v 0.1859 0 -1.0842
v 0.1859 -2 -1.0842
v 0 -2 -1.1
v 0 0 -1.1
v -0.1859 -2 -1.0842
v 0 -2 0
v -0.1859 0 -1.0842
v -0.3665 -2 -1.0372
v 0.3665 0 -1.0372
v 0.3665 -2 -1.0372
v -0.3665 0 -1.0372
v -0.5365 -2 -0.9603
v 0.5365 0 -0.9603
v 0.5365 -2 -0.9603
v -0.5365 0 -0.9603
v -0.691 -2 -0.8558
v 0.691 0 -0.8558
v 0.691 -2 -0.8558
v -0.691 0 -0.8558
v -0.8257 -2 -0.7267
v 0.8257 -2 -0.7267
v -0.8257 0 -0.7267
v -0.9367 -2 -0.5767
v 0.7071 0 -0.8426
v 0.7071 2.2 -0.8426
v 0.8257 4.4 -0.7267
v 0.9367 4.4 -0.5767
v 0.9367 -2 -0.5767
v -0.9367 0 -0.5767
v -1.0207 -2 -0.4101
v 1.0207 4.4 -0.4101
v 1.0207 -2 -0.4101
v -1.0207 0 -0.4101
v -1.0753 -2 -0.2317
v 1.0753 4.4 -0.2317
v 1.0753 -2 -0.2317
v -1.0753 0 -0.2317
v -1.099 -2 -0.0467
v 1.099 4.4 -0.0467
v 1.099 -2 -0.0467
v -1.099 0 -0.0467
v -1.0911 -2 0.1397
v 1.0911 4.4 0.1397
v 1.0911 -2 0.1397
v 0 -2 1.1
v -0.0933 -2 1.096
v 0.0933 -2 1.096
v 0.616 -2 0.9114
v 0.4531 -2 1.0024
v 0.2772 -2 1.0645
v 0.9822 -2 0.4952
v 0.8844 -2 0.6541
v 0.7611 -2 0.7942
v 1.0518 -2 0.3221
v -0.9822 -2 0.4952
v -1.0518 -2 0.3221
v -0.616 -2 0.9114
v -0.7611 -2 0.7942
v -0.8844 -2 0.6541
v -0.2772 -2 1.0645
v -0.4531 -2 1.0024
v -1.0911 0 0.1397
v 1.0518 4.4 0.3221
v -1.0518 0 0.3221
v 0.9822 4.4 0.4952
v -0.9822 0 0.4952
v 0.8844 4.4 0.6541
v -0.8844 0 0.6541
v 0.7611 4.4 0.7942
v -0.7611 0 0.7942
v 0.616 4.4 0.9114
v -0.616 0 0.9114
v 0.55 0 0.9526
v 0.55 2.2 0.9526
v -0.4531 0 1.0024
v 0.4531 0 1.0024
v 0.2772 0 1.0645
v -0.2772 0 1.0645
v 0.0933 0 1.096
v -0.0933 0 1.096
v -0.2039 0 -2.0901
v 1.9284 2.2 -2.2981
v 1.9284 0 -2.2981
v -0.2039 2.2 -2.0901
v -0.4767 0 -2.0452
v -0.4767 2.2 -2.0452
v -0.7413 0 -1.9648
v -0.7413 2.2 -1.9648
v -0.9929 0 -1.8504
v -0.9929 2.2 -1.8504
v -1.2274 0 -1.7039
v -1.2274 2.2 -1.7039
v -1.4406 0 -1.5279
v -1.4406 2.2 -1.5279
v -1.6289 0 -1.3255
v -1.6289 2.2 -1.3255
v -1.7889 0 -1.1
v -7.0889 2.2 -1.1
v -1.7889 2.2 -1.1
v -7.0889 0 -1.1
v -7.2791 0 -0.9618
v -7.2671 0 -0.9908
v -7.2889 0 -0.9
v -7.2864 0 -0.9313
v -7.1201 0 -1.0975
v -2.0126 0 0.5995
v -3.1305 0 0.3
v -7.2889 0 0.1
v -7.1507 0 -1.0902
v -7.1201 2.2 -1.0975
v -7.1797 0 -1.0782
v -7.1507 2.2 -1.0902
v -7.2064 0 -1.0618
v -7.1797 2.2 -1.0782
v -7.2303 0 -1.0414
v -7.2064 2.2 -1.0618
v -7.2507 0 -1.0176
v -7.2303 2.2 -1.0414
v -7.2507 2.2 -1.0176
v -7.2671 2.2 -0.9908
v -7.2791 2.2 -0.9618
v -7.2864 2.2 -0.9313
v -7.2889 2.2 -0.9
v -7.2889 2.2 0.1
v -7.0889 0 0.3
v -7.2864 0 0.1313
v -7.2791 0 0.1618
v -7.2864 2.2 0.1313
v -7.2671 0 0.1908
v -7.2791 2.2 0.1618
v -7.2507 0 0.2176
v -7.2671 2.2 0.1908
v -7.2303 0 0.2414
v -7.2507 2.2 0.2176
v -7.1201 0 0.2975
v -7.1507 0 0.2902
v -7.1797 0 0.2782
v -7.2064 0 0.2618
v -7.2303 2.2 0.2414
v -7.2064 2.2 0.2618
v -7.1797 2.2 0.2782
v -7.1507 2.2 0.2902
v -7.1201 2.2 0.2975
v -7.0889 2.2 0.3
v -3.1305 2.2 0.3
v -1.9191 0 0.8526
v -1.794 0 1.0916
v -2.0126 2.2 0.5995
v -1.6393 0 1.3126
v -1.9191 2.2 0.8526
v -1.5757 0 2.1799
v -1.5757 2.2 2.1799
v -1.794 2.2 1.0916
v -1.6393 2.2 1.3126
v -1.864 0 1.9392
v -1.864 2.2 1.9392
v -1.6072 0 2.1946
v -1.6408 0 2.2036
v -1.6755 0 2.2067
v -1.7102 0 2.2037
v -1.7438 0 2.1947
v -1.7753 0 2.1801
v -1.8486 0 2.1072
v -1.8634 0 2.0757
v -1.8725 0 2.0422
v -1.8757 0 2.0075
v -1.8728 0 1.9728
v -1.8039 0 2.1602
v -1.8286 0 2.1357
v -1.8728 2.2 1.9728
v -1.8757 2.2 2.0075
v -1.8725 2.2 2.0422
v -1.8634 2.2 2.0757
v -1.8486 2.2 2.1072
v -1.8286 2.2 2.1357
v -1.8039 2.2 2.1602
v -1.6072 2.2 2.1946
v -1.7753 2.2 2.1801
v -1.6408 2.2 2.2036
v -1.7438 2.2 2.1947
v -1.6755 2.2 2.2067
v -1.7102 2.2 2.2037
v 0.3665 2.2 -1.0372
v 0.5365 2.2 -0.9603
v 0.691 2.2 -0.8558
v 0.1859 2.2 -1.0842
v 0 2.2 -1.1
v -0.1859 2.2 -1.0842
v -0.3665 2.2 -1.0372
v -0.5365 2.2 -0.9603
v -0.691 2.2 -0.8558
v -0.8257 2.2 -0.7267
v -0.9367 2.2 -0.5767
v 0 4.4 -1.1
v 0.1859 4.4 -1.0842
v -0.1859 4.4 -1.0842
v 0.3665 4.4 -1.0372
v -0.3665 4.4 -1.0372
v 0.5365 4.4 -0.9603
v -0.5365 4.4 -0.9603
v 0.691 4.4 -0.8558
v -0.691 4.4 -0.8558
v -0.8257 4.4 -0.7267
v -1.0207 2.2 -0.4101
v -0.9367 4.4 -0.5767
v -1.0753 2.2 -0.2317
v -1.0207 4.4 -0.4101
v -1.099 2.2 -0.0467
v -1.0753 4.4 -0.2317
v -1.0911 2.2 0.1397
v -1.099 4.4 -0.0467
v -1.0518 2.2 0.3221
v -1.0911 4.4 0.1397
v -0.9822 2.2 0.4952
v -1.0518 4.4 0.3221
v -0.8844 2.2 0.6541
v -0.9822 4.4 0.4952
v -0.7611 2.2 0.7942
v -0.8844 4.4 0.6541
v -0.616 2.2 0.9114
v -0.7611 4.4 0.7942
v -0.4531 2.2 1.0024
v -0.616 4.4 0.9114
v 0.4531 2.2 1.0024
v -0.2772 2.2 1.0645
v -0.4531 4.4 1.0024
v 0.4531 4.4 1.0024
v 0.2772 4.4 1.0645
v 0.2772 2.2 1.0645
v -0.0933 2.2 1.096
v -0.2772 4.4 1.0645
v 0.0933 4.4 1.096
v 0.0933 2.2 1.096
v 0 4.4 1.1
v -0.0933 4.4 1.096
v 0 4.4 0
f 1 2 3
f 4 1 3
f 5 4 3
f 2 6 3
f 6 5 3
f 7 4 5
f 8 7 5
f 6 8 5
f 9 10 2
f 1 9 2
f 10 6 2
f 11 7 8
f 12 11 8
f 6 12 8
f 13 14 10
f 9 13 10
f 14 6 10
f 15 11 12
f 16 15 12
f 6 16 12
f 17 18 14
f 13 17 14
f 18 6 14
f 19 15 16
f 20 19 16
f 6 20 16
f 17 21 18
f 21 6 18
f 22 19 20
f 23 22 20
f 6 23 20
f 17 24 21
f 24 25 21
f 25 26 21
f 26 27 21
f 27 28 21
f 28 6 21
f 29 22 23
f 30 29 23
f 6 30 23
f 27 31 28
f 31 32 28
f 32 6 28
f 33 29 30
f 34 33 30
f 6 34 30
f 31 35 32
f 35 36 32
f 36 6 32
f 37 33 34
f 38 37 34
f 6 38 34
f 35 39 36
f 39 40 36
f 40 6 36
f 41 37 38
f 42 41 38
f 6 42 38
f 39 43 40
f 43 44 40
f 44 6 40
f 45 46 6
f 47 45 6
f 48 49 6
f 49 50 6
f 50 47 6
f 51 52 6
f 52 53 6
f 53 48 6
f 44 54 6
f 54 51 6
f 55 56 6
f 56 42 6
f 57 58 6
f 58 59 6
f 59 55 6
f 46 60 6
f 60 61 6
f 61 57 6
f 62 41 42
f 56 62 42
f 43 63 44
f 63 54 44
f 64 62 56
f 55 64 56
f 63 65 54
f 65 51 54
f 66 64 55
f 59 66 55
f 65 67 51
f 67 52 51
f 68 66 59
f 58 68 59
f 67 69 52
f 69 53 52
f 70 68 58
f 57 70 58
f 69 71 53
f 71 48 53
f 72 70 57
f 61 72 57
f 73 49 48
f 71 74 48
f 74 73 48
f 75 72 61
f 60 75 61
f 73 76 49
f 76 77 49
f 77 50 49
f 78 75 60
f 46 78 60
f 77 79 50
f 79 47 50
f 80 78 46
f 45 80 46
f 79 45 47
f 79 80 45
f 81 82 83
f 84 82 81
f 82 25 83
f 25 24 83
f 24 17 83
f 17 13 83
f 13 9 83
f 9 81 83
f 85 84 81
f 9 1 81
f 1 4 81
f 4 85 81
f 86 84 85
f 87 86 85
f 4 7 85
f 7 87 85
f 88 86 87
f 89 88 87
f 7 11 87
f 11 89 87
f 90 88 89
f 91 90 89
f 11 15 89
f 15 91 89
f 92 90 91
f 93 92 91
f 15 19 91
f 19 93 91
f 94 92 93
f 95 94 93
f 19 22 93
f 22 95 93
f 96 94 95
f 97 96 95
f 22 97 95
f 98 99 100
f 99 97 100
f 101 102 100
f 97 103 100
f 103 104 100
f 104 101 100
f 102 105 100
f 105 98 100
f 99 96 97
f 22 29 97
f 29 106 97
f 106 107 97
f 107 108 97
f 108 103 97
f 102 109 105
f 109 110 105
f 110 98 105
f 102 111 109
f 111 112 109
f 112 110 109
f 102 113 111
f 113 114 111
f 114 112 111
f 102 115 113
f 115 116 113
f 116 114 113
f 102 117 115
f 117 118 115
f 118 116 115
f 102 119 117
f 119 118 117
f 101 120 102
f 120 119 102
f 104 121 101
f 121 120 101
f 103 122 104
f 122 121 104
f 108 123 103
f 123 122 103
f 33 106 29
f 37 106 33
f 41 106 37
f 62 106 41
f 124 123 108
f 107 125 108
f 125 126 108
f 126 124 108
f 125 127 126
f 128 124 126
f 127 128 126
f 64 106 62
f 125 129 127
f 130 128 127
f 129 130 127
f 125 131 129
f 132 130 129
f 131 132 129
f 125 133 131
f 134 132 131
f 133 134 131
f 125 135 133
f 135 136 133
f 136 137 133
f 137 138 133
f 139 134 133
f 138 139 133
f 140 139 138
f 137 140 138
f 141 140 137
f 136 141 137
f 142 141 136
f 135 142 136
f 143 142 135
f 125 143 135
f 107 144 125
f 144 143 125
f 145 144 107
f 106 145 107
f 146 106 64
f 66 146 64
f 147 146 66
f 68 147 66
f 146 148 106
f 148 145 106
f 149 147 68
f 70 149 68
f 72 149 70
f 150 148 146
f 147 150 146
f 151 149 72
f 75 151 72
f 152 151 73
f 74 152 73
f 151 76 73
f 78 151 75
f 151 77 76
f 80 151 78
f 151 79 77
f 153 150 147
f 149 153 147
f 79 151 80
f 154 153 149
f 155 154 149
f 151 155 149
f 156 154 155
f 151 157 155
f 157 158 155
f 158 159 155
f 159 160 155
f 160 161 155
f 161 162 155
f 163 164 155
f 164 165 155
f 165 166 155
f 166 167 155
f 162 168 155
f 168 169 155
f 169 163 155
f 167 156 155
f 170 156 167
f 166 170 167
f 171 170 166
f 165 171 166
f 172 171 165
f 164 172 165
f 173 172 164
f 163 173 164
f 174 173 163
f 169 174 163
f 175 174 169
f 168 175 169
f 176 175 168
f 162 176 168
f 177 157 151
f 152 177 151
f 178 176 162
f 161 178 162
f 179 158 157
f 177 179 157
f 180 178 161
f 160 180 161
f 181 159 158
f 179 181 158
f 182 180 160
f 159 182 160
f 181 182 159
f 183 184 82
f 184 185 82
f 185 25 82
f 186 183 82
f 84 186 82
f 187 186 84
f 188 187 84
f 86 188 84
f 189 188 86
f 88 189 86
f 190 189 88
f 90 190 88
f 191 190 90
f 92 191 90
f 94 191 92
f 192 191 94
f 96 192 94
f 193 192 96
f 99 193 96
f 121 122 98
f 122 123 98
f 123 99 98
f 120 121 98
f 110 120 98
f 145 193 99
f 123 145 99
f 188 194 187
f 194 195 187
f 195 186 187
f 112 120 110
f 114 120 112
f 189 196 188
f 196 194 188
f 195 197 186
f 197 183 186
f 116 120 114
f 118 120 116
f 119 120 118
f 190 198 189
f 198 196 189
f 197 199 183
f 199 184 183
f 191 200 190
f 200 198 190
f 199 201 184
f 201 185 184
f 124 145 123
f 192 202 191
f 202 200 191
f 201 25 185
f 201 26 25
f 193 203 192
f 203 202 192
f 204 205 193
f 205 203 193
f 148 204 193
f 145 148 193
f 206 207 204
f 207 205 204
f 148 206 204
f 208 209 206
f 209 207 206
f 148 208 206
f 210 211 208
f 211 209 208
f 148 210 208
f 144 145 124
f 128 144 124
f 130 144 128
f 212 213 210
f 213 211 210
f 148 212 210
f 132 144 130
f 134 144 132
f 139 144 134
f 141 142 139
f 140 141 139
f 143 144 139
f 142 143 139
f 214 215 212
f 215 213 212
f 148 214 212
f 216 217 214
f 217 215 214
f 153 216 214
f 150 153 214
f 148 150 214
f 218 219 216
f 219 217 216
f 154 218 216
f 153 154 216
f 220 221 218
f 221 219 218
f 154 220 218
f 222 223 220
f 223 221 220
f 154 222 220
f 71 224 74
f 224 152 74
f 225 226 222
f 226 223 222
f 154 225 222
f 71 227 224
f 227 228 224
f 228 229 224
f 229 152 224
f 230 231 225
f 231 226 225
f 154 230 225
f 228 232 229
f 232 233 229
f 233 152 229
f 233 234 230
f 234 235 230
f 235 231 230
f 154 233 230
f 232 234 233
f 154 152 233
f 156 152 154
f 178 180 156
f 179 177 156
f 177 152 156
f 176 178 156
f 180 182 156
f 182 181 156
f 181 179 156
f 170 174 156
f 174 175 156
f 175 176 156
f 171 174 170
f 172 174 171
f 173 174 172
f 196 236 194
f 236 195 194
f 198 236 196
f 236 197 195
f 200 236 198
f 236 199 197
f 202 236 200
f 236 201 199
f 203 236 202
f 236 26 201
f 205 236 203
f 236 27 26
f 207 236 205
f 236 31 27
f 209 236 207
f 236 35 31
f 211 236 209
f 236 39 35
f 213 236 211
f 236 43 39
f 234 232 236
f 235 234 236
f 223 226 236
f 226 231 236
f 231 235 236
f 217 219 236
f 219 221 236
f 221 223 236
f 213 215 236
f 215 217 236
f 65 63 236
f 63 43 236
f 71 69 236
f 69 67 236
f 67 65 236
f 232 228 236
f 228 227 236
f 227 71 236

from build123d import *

# Parameters (mm, degrees)
BOSS_EXTRUDE1_DEPTH      = 2.2
BOSS_EXTRUDE2_DEPTH      = 4.4
BOSS_EXTRUDE2_DEPTH_BACK = 2
FILLET1_R                = 0.2


with BuildPart() as part:
    # Sketch1 → Boss-Extrude1 (new body)
    with BuildSketch(Plane(origin=(0, 0, 0), x_dir=(1, 0, 0), z_dir=(0, 1, 0))):
        with BuildLine():
            Line((-1.788854382, 1.1), (-7.288854382, 1.1))
            Line((-7.288854382, 1.1), (-7.288854382, -0.3))
            Line((-7.288854382, -0.3), (-3.130458393, -0.3))
            Line((-3.130458393, -0.3), (-2.012601597, -0.599528826))
            ThreePointArc((-2.012601597, -0.599528826), (-1.860410686, -0.974100652), (-1.639259655, -1.312565344))
            Line((-1.639259655, -1.312565344), (-2.048076211, -2.452627944))
            Line((-2.048076211, -2.452627944), (0.55, -0.952627944))
            ThreePointArc((0.55, -0.952627944), (1.095814168, -0.095871317), (0.707066371, 0.842648887))
            Line((0.707066371, 0.842648887), (1.928362829, 2.298133329))
            Line((1.928362829, 2.298133329), (-0.203939042, 2.09007389))
            ThreePointArc((-0.203939042, 2.09007389), (-1.112595158, 1.78104801), (-1.788854382, 1.1))
        make_face()
    extrude(amount=BOSS_EXTRUDE1_DEPTH)

    # Sketch1<3> → Boss-Extrude2 (add, two sides: drawn at the far end of the back side and taken through both)
    with BuildSketch(Plane(origin=(0, 0, 0), x_dir=(1, 0, 0), z_dir=(0, 1, 0)).offset(-BOSS_EXTRUDE2_DEPTH_BACK)):
        with BuildLine():
            ThreePointArc((1.1, 0), (0.996938566, 0.464880088), (0.707066371, 0.842648887))
            ThreePointArc((0.707066371, 0.842648887), (-1.095814168, 0.095871317), (0.55, -0.952627944))
            ThreePointArc((0.55, -0.952627944), (0.952627944, -0.55), (1.1, 0))
        make_face()
    extrude(amount=BOSS_EXTRUDE2_DEPTH + BOSS_EXTRUDE2_DEPTH_BACK)

    # Fillet1
    fillet1_edges = [part.edges().sort_by_distance(p)[0] for p in [
        (-2.048076211, 1.1, 2.452627944),
        (-7.288854382, 1.1, 0.3),
        (-7.288854382, 1.1, -1.1),
    ]]
    fillet(fillet1_edges, radius=FILLET1_R)


solid = part.part
